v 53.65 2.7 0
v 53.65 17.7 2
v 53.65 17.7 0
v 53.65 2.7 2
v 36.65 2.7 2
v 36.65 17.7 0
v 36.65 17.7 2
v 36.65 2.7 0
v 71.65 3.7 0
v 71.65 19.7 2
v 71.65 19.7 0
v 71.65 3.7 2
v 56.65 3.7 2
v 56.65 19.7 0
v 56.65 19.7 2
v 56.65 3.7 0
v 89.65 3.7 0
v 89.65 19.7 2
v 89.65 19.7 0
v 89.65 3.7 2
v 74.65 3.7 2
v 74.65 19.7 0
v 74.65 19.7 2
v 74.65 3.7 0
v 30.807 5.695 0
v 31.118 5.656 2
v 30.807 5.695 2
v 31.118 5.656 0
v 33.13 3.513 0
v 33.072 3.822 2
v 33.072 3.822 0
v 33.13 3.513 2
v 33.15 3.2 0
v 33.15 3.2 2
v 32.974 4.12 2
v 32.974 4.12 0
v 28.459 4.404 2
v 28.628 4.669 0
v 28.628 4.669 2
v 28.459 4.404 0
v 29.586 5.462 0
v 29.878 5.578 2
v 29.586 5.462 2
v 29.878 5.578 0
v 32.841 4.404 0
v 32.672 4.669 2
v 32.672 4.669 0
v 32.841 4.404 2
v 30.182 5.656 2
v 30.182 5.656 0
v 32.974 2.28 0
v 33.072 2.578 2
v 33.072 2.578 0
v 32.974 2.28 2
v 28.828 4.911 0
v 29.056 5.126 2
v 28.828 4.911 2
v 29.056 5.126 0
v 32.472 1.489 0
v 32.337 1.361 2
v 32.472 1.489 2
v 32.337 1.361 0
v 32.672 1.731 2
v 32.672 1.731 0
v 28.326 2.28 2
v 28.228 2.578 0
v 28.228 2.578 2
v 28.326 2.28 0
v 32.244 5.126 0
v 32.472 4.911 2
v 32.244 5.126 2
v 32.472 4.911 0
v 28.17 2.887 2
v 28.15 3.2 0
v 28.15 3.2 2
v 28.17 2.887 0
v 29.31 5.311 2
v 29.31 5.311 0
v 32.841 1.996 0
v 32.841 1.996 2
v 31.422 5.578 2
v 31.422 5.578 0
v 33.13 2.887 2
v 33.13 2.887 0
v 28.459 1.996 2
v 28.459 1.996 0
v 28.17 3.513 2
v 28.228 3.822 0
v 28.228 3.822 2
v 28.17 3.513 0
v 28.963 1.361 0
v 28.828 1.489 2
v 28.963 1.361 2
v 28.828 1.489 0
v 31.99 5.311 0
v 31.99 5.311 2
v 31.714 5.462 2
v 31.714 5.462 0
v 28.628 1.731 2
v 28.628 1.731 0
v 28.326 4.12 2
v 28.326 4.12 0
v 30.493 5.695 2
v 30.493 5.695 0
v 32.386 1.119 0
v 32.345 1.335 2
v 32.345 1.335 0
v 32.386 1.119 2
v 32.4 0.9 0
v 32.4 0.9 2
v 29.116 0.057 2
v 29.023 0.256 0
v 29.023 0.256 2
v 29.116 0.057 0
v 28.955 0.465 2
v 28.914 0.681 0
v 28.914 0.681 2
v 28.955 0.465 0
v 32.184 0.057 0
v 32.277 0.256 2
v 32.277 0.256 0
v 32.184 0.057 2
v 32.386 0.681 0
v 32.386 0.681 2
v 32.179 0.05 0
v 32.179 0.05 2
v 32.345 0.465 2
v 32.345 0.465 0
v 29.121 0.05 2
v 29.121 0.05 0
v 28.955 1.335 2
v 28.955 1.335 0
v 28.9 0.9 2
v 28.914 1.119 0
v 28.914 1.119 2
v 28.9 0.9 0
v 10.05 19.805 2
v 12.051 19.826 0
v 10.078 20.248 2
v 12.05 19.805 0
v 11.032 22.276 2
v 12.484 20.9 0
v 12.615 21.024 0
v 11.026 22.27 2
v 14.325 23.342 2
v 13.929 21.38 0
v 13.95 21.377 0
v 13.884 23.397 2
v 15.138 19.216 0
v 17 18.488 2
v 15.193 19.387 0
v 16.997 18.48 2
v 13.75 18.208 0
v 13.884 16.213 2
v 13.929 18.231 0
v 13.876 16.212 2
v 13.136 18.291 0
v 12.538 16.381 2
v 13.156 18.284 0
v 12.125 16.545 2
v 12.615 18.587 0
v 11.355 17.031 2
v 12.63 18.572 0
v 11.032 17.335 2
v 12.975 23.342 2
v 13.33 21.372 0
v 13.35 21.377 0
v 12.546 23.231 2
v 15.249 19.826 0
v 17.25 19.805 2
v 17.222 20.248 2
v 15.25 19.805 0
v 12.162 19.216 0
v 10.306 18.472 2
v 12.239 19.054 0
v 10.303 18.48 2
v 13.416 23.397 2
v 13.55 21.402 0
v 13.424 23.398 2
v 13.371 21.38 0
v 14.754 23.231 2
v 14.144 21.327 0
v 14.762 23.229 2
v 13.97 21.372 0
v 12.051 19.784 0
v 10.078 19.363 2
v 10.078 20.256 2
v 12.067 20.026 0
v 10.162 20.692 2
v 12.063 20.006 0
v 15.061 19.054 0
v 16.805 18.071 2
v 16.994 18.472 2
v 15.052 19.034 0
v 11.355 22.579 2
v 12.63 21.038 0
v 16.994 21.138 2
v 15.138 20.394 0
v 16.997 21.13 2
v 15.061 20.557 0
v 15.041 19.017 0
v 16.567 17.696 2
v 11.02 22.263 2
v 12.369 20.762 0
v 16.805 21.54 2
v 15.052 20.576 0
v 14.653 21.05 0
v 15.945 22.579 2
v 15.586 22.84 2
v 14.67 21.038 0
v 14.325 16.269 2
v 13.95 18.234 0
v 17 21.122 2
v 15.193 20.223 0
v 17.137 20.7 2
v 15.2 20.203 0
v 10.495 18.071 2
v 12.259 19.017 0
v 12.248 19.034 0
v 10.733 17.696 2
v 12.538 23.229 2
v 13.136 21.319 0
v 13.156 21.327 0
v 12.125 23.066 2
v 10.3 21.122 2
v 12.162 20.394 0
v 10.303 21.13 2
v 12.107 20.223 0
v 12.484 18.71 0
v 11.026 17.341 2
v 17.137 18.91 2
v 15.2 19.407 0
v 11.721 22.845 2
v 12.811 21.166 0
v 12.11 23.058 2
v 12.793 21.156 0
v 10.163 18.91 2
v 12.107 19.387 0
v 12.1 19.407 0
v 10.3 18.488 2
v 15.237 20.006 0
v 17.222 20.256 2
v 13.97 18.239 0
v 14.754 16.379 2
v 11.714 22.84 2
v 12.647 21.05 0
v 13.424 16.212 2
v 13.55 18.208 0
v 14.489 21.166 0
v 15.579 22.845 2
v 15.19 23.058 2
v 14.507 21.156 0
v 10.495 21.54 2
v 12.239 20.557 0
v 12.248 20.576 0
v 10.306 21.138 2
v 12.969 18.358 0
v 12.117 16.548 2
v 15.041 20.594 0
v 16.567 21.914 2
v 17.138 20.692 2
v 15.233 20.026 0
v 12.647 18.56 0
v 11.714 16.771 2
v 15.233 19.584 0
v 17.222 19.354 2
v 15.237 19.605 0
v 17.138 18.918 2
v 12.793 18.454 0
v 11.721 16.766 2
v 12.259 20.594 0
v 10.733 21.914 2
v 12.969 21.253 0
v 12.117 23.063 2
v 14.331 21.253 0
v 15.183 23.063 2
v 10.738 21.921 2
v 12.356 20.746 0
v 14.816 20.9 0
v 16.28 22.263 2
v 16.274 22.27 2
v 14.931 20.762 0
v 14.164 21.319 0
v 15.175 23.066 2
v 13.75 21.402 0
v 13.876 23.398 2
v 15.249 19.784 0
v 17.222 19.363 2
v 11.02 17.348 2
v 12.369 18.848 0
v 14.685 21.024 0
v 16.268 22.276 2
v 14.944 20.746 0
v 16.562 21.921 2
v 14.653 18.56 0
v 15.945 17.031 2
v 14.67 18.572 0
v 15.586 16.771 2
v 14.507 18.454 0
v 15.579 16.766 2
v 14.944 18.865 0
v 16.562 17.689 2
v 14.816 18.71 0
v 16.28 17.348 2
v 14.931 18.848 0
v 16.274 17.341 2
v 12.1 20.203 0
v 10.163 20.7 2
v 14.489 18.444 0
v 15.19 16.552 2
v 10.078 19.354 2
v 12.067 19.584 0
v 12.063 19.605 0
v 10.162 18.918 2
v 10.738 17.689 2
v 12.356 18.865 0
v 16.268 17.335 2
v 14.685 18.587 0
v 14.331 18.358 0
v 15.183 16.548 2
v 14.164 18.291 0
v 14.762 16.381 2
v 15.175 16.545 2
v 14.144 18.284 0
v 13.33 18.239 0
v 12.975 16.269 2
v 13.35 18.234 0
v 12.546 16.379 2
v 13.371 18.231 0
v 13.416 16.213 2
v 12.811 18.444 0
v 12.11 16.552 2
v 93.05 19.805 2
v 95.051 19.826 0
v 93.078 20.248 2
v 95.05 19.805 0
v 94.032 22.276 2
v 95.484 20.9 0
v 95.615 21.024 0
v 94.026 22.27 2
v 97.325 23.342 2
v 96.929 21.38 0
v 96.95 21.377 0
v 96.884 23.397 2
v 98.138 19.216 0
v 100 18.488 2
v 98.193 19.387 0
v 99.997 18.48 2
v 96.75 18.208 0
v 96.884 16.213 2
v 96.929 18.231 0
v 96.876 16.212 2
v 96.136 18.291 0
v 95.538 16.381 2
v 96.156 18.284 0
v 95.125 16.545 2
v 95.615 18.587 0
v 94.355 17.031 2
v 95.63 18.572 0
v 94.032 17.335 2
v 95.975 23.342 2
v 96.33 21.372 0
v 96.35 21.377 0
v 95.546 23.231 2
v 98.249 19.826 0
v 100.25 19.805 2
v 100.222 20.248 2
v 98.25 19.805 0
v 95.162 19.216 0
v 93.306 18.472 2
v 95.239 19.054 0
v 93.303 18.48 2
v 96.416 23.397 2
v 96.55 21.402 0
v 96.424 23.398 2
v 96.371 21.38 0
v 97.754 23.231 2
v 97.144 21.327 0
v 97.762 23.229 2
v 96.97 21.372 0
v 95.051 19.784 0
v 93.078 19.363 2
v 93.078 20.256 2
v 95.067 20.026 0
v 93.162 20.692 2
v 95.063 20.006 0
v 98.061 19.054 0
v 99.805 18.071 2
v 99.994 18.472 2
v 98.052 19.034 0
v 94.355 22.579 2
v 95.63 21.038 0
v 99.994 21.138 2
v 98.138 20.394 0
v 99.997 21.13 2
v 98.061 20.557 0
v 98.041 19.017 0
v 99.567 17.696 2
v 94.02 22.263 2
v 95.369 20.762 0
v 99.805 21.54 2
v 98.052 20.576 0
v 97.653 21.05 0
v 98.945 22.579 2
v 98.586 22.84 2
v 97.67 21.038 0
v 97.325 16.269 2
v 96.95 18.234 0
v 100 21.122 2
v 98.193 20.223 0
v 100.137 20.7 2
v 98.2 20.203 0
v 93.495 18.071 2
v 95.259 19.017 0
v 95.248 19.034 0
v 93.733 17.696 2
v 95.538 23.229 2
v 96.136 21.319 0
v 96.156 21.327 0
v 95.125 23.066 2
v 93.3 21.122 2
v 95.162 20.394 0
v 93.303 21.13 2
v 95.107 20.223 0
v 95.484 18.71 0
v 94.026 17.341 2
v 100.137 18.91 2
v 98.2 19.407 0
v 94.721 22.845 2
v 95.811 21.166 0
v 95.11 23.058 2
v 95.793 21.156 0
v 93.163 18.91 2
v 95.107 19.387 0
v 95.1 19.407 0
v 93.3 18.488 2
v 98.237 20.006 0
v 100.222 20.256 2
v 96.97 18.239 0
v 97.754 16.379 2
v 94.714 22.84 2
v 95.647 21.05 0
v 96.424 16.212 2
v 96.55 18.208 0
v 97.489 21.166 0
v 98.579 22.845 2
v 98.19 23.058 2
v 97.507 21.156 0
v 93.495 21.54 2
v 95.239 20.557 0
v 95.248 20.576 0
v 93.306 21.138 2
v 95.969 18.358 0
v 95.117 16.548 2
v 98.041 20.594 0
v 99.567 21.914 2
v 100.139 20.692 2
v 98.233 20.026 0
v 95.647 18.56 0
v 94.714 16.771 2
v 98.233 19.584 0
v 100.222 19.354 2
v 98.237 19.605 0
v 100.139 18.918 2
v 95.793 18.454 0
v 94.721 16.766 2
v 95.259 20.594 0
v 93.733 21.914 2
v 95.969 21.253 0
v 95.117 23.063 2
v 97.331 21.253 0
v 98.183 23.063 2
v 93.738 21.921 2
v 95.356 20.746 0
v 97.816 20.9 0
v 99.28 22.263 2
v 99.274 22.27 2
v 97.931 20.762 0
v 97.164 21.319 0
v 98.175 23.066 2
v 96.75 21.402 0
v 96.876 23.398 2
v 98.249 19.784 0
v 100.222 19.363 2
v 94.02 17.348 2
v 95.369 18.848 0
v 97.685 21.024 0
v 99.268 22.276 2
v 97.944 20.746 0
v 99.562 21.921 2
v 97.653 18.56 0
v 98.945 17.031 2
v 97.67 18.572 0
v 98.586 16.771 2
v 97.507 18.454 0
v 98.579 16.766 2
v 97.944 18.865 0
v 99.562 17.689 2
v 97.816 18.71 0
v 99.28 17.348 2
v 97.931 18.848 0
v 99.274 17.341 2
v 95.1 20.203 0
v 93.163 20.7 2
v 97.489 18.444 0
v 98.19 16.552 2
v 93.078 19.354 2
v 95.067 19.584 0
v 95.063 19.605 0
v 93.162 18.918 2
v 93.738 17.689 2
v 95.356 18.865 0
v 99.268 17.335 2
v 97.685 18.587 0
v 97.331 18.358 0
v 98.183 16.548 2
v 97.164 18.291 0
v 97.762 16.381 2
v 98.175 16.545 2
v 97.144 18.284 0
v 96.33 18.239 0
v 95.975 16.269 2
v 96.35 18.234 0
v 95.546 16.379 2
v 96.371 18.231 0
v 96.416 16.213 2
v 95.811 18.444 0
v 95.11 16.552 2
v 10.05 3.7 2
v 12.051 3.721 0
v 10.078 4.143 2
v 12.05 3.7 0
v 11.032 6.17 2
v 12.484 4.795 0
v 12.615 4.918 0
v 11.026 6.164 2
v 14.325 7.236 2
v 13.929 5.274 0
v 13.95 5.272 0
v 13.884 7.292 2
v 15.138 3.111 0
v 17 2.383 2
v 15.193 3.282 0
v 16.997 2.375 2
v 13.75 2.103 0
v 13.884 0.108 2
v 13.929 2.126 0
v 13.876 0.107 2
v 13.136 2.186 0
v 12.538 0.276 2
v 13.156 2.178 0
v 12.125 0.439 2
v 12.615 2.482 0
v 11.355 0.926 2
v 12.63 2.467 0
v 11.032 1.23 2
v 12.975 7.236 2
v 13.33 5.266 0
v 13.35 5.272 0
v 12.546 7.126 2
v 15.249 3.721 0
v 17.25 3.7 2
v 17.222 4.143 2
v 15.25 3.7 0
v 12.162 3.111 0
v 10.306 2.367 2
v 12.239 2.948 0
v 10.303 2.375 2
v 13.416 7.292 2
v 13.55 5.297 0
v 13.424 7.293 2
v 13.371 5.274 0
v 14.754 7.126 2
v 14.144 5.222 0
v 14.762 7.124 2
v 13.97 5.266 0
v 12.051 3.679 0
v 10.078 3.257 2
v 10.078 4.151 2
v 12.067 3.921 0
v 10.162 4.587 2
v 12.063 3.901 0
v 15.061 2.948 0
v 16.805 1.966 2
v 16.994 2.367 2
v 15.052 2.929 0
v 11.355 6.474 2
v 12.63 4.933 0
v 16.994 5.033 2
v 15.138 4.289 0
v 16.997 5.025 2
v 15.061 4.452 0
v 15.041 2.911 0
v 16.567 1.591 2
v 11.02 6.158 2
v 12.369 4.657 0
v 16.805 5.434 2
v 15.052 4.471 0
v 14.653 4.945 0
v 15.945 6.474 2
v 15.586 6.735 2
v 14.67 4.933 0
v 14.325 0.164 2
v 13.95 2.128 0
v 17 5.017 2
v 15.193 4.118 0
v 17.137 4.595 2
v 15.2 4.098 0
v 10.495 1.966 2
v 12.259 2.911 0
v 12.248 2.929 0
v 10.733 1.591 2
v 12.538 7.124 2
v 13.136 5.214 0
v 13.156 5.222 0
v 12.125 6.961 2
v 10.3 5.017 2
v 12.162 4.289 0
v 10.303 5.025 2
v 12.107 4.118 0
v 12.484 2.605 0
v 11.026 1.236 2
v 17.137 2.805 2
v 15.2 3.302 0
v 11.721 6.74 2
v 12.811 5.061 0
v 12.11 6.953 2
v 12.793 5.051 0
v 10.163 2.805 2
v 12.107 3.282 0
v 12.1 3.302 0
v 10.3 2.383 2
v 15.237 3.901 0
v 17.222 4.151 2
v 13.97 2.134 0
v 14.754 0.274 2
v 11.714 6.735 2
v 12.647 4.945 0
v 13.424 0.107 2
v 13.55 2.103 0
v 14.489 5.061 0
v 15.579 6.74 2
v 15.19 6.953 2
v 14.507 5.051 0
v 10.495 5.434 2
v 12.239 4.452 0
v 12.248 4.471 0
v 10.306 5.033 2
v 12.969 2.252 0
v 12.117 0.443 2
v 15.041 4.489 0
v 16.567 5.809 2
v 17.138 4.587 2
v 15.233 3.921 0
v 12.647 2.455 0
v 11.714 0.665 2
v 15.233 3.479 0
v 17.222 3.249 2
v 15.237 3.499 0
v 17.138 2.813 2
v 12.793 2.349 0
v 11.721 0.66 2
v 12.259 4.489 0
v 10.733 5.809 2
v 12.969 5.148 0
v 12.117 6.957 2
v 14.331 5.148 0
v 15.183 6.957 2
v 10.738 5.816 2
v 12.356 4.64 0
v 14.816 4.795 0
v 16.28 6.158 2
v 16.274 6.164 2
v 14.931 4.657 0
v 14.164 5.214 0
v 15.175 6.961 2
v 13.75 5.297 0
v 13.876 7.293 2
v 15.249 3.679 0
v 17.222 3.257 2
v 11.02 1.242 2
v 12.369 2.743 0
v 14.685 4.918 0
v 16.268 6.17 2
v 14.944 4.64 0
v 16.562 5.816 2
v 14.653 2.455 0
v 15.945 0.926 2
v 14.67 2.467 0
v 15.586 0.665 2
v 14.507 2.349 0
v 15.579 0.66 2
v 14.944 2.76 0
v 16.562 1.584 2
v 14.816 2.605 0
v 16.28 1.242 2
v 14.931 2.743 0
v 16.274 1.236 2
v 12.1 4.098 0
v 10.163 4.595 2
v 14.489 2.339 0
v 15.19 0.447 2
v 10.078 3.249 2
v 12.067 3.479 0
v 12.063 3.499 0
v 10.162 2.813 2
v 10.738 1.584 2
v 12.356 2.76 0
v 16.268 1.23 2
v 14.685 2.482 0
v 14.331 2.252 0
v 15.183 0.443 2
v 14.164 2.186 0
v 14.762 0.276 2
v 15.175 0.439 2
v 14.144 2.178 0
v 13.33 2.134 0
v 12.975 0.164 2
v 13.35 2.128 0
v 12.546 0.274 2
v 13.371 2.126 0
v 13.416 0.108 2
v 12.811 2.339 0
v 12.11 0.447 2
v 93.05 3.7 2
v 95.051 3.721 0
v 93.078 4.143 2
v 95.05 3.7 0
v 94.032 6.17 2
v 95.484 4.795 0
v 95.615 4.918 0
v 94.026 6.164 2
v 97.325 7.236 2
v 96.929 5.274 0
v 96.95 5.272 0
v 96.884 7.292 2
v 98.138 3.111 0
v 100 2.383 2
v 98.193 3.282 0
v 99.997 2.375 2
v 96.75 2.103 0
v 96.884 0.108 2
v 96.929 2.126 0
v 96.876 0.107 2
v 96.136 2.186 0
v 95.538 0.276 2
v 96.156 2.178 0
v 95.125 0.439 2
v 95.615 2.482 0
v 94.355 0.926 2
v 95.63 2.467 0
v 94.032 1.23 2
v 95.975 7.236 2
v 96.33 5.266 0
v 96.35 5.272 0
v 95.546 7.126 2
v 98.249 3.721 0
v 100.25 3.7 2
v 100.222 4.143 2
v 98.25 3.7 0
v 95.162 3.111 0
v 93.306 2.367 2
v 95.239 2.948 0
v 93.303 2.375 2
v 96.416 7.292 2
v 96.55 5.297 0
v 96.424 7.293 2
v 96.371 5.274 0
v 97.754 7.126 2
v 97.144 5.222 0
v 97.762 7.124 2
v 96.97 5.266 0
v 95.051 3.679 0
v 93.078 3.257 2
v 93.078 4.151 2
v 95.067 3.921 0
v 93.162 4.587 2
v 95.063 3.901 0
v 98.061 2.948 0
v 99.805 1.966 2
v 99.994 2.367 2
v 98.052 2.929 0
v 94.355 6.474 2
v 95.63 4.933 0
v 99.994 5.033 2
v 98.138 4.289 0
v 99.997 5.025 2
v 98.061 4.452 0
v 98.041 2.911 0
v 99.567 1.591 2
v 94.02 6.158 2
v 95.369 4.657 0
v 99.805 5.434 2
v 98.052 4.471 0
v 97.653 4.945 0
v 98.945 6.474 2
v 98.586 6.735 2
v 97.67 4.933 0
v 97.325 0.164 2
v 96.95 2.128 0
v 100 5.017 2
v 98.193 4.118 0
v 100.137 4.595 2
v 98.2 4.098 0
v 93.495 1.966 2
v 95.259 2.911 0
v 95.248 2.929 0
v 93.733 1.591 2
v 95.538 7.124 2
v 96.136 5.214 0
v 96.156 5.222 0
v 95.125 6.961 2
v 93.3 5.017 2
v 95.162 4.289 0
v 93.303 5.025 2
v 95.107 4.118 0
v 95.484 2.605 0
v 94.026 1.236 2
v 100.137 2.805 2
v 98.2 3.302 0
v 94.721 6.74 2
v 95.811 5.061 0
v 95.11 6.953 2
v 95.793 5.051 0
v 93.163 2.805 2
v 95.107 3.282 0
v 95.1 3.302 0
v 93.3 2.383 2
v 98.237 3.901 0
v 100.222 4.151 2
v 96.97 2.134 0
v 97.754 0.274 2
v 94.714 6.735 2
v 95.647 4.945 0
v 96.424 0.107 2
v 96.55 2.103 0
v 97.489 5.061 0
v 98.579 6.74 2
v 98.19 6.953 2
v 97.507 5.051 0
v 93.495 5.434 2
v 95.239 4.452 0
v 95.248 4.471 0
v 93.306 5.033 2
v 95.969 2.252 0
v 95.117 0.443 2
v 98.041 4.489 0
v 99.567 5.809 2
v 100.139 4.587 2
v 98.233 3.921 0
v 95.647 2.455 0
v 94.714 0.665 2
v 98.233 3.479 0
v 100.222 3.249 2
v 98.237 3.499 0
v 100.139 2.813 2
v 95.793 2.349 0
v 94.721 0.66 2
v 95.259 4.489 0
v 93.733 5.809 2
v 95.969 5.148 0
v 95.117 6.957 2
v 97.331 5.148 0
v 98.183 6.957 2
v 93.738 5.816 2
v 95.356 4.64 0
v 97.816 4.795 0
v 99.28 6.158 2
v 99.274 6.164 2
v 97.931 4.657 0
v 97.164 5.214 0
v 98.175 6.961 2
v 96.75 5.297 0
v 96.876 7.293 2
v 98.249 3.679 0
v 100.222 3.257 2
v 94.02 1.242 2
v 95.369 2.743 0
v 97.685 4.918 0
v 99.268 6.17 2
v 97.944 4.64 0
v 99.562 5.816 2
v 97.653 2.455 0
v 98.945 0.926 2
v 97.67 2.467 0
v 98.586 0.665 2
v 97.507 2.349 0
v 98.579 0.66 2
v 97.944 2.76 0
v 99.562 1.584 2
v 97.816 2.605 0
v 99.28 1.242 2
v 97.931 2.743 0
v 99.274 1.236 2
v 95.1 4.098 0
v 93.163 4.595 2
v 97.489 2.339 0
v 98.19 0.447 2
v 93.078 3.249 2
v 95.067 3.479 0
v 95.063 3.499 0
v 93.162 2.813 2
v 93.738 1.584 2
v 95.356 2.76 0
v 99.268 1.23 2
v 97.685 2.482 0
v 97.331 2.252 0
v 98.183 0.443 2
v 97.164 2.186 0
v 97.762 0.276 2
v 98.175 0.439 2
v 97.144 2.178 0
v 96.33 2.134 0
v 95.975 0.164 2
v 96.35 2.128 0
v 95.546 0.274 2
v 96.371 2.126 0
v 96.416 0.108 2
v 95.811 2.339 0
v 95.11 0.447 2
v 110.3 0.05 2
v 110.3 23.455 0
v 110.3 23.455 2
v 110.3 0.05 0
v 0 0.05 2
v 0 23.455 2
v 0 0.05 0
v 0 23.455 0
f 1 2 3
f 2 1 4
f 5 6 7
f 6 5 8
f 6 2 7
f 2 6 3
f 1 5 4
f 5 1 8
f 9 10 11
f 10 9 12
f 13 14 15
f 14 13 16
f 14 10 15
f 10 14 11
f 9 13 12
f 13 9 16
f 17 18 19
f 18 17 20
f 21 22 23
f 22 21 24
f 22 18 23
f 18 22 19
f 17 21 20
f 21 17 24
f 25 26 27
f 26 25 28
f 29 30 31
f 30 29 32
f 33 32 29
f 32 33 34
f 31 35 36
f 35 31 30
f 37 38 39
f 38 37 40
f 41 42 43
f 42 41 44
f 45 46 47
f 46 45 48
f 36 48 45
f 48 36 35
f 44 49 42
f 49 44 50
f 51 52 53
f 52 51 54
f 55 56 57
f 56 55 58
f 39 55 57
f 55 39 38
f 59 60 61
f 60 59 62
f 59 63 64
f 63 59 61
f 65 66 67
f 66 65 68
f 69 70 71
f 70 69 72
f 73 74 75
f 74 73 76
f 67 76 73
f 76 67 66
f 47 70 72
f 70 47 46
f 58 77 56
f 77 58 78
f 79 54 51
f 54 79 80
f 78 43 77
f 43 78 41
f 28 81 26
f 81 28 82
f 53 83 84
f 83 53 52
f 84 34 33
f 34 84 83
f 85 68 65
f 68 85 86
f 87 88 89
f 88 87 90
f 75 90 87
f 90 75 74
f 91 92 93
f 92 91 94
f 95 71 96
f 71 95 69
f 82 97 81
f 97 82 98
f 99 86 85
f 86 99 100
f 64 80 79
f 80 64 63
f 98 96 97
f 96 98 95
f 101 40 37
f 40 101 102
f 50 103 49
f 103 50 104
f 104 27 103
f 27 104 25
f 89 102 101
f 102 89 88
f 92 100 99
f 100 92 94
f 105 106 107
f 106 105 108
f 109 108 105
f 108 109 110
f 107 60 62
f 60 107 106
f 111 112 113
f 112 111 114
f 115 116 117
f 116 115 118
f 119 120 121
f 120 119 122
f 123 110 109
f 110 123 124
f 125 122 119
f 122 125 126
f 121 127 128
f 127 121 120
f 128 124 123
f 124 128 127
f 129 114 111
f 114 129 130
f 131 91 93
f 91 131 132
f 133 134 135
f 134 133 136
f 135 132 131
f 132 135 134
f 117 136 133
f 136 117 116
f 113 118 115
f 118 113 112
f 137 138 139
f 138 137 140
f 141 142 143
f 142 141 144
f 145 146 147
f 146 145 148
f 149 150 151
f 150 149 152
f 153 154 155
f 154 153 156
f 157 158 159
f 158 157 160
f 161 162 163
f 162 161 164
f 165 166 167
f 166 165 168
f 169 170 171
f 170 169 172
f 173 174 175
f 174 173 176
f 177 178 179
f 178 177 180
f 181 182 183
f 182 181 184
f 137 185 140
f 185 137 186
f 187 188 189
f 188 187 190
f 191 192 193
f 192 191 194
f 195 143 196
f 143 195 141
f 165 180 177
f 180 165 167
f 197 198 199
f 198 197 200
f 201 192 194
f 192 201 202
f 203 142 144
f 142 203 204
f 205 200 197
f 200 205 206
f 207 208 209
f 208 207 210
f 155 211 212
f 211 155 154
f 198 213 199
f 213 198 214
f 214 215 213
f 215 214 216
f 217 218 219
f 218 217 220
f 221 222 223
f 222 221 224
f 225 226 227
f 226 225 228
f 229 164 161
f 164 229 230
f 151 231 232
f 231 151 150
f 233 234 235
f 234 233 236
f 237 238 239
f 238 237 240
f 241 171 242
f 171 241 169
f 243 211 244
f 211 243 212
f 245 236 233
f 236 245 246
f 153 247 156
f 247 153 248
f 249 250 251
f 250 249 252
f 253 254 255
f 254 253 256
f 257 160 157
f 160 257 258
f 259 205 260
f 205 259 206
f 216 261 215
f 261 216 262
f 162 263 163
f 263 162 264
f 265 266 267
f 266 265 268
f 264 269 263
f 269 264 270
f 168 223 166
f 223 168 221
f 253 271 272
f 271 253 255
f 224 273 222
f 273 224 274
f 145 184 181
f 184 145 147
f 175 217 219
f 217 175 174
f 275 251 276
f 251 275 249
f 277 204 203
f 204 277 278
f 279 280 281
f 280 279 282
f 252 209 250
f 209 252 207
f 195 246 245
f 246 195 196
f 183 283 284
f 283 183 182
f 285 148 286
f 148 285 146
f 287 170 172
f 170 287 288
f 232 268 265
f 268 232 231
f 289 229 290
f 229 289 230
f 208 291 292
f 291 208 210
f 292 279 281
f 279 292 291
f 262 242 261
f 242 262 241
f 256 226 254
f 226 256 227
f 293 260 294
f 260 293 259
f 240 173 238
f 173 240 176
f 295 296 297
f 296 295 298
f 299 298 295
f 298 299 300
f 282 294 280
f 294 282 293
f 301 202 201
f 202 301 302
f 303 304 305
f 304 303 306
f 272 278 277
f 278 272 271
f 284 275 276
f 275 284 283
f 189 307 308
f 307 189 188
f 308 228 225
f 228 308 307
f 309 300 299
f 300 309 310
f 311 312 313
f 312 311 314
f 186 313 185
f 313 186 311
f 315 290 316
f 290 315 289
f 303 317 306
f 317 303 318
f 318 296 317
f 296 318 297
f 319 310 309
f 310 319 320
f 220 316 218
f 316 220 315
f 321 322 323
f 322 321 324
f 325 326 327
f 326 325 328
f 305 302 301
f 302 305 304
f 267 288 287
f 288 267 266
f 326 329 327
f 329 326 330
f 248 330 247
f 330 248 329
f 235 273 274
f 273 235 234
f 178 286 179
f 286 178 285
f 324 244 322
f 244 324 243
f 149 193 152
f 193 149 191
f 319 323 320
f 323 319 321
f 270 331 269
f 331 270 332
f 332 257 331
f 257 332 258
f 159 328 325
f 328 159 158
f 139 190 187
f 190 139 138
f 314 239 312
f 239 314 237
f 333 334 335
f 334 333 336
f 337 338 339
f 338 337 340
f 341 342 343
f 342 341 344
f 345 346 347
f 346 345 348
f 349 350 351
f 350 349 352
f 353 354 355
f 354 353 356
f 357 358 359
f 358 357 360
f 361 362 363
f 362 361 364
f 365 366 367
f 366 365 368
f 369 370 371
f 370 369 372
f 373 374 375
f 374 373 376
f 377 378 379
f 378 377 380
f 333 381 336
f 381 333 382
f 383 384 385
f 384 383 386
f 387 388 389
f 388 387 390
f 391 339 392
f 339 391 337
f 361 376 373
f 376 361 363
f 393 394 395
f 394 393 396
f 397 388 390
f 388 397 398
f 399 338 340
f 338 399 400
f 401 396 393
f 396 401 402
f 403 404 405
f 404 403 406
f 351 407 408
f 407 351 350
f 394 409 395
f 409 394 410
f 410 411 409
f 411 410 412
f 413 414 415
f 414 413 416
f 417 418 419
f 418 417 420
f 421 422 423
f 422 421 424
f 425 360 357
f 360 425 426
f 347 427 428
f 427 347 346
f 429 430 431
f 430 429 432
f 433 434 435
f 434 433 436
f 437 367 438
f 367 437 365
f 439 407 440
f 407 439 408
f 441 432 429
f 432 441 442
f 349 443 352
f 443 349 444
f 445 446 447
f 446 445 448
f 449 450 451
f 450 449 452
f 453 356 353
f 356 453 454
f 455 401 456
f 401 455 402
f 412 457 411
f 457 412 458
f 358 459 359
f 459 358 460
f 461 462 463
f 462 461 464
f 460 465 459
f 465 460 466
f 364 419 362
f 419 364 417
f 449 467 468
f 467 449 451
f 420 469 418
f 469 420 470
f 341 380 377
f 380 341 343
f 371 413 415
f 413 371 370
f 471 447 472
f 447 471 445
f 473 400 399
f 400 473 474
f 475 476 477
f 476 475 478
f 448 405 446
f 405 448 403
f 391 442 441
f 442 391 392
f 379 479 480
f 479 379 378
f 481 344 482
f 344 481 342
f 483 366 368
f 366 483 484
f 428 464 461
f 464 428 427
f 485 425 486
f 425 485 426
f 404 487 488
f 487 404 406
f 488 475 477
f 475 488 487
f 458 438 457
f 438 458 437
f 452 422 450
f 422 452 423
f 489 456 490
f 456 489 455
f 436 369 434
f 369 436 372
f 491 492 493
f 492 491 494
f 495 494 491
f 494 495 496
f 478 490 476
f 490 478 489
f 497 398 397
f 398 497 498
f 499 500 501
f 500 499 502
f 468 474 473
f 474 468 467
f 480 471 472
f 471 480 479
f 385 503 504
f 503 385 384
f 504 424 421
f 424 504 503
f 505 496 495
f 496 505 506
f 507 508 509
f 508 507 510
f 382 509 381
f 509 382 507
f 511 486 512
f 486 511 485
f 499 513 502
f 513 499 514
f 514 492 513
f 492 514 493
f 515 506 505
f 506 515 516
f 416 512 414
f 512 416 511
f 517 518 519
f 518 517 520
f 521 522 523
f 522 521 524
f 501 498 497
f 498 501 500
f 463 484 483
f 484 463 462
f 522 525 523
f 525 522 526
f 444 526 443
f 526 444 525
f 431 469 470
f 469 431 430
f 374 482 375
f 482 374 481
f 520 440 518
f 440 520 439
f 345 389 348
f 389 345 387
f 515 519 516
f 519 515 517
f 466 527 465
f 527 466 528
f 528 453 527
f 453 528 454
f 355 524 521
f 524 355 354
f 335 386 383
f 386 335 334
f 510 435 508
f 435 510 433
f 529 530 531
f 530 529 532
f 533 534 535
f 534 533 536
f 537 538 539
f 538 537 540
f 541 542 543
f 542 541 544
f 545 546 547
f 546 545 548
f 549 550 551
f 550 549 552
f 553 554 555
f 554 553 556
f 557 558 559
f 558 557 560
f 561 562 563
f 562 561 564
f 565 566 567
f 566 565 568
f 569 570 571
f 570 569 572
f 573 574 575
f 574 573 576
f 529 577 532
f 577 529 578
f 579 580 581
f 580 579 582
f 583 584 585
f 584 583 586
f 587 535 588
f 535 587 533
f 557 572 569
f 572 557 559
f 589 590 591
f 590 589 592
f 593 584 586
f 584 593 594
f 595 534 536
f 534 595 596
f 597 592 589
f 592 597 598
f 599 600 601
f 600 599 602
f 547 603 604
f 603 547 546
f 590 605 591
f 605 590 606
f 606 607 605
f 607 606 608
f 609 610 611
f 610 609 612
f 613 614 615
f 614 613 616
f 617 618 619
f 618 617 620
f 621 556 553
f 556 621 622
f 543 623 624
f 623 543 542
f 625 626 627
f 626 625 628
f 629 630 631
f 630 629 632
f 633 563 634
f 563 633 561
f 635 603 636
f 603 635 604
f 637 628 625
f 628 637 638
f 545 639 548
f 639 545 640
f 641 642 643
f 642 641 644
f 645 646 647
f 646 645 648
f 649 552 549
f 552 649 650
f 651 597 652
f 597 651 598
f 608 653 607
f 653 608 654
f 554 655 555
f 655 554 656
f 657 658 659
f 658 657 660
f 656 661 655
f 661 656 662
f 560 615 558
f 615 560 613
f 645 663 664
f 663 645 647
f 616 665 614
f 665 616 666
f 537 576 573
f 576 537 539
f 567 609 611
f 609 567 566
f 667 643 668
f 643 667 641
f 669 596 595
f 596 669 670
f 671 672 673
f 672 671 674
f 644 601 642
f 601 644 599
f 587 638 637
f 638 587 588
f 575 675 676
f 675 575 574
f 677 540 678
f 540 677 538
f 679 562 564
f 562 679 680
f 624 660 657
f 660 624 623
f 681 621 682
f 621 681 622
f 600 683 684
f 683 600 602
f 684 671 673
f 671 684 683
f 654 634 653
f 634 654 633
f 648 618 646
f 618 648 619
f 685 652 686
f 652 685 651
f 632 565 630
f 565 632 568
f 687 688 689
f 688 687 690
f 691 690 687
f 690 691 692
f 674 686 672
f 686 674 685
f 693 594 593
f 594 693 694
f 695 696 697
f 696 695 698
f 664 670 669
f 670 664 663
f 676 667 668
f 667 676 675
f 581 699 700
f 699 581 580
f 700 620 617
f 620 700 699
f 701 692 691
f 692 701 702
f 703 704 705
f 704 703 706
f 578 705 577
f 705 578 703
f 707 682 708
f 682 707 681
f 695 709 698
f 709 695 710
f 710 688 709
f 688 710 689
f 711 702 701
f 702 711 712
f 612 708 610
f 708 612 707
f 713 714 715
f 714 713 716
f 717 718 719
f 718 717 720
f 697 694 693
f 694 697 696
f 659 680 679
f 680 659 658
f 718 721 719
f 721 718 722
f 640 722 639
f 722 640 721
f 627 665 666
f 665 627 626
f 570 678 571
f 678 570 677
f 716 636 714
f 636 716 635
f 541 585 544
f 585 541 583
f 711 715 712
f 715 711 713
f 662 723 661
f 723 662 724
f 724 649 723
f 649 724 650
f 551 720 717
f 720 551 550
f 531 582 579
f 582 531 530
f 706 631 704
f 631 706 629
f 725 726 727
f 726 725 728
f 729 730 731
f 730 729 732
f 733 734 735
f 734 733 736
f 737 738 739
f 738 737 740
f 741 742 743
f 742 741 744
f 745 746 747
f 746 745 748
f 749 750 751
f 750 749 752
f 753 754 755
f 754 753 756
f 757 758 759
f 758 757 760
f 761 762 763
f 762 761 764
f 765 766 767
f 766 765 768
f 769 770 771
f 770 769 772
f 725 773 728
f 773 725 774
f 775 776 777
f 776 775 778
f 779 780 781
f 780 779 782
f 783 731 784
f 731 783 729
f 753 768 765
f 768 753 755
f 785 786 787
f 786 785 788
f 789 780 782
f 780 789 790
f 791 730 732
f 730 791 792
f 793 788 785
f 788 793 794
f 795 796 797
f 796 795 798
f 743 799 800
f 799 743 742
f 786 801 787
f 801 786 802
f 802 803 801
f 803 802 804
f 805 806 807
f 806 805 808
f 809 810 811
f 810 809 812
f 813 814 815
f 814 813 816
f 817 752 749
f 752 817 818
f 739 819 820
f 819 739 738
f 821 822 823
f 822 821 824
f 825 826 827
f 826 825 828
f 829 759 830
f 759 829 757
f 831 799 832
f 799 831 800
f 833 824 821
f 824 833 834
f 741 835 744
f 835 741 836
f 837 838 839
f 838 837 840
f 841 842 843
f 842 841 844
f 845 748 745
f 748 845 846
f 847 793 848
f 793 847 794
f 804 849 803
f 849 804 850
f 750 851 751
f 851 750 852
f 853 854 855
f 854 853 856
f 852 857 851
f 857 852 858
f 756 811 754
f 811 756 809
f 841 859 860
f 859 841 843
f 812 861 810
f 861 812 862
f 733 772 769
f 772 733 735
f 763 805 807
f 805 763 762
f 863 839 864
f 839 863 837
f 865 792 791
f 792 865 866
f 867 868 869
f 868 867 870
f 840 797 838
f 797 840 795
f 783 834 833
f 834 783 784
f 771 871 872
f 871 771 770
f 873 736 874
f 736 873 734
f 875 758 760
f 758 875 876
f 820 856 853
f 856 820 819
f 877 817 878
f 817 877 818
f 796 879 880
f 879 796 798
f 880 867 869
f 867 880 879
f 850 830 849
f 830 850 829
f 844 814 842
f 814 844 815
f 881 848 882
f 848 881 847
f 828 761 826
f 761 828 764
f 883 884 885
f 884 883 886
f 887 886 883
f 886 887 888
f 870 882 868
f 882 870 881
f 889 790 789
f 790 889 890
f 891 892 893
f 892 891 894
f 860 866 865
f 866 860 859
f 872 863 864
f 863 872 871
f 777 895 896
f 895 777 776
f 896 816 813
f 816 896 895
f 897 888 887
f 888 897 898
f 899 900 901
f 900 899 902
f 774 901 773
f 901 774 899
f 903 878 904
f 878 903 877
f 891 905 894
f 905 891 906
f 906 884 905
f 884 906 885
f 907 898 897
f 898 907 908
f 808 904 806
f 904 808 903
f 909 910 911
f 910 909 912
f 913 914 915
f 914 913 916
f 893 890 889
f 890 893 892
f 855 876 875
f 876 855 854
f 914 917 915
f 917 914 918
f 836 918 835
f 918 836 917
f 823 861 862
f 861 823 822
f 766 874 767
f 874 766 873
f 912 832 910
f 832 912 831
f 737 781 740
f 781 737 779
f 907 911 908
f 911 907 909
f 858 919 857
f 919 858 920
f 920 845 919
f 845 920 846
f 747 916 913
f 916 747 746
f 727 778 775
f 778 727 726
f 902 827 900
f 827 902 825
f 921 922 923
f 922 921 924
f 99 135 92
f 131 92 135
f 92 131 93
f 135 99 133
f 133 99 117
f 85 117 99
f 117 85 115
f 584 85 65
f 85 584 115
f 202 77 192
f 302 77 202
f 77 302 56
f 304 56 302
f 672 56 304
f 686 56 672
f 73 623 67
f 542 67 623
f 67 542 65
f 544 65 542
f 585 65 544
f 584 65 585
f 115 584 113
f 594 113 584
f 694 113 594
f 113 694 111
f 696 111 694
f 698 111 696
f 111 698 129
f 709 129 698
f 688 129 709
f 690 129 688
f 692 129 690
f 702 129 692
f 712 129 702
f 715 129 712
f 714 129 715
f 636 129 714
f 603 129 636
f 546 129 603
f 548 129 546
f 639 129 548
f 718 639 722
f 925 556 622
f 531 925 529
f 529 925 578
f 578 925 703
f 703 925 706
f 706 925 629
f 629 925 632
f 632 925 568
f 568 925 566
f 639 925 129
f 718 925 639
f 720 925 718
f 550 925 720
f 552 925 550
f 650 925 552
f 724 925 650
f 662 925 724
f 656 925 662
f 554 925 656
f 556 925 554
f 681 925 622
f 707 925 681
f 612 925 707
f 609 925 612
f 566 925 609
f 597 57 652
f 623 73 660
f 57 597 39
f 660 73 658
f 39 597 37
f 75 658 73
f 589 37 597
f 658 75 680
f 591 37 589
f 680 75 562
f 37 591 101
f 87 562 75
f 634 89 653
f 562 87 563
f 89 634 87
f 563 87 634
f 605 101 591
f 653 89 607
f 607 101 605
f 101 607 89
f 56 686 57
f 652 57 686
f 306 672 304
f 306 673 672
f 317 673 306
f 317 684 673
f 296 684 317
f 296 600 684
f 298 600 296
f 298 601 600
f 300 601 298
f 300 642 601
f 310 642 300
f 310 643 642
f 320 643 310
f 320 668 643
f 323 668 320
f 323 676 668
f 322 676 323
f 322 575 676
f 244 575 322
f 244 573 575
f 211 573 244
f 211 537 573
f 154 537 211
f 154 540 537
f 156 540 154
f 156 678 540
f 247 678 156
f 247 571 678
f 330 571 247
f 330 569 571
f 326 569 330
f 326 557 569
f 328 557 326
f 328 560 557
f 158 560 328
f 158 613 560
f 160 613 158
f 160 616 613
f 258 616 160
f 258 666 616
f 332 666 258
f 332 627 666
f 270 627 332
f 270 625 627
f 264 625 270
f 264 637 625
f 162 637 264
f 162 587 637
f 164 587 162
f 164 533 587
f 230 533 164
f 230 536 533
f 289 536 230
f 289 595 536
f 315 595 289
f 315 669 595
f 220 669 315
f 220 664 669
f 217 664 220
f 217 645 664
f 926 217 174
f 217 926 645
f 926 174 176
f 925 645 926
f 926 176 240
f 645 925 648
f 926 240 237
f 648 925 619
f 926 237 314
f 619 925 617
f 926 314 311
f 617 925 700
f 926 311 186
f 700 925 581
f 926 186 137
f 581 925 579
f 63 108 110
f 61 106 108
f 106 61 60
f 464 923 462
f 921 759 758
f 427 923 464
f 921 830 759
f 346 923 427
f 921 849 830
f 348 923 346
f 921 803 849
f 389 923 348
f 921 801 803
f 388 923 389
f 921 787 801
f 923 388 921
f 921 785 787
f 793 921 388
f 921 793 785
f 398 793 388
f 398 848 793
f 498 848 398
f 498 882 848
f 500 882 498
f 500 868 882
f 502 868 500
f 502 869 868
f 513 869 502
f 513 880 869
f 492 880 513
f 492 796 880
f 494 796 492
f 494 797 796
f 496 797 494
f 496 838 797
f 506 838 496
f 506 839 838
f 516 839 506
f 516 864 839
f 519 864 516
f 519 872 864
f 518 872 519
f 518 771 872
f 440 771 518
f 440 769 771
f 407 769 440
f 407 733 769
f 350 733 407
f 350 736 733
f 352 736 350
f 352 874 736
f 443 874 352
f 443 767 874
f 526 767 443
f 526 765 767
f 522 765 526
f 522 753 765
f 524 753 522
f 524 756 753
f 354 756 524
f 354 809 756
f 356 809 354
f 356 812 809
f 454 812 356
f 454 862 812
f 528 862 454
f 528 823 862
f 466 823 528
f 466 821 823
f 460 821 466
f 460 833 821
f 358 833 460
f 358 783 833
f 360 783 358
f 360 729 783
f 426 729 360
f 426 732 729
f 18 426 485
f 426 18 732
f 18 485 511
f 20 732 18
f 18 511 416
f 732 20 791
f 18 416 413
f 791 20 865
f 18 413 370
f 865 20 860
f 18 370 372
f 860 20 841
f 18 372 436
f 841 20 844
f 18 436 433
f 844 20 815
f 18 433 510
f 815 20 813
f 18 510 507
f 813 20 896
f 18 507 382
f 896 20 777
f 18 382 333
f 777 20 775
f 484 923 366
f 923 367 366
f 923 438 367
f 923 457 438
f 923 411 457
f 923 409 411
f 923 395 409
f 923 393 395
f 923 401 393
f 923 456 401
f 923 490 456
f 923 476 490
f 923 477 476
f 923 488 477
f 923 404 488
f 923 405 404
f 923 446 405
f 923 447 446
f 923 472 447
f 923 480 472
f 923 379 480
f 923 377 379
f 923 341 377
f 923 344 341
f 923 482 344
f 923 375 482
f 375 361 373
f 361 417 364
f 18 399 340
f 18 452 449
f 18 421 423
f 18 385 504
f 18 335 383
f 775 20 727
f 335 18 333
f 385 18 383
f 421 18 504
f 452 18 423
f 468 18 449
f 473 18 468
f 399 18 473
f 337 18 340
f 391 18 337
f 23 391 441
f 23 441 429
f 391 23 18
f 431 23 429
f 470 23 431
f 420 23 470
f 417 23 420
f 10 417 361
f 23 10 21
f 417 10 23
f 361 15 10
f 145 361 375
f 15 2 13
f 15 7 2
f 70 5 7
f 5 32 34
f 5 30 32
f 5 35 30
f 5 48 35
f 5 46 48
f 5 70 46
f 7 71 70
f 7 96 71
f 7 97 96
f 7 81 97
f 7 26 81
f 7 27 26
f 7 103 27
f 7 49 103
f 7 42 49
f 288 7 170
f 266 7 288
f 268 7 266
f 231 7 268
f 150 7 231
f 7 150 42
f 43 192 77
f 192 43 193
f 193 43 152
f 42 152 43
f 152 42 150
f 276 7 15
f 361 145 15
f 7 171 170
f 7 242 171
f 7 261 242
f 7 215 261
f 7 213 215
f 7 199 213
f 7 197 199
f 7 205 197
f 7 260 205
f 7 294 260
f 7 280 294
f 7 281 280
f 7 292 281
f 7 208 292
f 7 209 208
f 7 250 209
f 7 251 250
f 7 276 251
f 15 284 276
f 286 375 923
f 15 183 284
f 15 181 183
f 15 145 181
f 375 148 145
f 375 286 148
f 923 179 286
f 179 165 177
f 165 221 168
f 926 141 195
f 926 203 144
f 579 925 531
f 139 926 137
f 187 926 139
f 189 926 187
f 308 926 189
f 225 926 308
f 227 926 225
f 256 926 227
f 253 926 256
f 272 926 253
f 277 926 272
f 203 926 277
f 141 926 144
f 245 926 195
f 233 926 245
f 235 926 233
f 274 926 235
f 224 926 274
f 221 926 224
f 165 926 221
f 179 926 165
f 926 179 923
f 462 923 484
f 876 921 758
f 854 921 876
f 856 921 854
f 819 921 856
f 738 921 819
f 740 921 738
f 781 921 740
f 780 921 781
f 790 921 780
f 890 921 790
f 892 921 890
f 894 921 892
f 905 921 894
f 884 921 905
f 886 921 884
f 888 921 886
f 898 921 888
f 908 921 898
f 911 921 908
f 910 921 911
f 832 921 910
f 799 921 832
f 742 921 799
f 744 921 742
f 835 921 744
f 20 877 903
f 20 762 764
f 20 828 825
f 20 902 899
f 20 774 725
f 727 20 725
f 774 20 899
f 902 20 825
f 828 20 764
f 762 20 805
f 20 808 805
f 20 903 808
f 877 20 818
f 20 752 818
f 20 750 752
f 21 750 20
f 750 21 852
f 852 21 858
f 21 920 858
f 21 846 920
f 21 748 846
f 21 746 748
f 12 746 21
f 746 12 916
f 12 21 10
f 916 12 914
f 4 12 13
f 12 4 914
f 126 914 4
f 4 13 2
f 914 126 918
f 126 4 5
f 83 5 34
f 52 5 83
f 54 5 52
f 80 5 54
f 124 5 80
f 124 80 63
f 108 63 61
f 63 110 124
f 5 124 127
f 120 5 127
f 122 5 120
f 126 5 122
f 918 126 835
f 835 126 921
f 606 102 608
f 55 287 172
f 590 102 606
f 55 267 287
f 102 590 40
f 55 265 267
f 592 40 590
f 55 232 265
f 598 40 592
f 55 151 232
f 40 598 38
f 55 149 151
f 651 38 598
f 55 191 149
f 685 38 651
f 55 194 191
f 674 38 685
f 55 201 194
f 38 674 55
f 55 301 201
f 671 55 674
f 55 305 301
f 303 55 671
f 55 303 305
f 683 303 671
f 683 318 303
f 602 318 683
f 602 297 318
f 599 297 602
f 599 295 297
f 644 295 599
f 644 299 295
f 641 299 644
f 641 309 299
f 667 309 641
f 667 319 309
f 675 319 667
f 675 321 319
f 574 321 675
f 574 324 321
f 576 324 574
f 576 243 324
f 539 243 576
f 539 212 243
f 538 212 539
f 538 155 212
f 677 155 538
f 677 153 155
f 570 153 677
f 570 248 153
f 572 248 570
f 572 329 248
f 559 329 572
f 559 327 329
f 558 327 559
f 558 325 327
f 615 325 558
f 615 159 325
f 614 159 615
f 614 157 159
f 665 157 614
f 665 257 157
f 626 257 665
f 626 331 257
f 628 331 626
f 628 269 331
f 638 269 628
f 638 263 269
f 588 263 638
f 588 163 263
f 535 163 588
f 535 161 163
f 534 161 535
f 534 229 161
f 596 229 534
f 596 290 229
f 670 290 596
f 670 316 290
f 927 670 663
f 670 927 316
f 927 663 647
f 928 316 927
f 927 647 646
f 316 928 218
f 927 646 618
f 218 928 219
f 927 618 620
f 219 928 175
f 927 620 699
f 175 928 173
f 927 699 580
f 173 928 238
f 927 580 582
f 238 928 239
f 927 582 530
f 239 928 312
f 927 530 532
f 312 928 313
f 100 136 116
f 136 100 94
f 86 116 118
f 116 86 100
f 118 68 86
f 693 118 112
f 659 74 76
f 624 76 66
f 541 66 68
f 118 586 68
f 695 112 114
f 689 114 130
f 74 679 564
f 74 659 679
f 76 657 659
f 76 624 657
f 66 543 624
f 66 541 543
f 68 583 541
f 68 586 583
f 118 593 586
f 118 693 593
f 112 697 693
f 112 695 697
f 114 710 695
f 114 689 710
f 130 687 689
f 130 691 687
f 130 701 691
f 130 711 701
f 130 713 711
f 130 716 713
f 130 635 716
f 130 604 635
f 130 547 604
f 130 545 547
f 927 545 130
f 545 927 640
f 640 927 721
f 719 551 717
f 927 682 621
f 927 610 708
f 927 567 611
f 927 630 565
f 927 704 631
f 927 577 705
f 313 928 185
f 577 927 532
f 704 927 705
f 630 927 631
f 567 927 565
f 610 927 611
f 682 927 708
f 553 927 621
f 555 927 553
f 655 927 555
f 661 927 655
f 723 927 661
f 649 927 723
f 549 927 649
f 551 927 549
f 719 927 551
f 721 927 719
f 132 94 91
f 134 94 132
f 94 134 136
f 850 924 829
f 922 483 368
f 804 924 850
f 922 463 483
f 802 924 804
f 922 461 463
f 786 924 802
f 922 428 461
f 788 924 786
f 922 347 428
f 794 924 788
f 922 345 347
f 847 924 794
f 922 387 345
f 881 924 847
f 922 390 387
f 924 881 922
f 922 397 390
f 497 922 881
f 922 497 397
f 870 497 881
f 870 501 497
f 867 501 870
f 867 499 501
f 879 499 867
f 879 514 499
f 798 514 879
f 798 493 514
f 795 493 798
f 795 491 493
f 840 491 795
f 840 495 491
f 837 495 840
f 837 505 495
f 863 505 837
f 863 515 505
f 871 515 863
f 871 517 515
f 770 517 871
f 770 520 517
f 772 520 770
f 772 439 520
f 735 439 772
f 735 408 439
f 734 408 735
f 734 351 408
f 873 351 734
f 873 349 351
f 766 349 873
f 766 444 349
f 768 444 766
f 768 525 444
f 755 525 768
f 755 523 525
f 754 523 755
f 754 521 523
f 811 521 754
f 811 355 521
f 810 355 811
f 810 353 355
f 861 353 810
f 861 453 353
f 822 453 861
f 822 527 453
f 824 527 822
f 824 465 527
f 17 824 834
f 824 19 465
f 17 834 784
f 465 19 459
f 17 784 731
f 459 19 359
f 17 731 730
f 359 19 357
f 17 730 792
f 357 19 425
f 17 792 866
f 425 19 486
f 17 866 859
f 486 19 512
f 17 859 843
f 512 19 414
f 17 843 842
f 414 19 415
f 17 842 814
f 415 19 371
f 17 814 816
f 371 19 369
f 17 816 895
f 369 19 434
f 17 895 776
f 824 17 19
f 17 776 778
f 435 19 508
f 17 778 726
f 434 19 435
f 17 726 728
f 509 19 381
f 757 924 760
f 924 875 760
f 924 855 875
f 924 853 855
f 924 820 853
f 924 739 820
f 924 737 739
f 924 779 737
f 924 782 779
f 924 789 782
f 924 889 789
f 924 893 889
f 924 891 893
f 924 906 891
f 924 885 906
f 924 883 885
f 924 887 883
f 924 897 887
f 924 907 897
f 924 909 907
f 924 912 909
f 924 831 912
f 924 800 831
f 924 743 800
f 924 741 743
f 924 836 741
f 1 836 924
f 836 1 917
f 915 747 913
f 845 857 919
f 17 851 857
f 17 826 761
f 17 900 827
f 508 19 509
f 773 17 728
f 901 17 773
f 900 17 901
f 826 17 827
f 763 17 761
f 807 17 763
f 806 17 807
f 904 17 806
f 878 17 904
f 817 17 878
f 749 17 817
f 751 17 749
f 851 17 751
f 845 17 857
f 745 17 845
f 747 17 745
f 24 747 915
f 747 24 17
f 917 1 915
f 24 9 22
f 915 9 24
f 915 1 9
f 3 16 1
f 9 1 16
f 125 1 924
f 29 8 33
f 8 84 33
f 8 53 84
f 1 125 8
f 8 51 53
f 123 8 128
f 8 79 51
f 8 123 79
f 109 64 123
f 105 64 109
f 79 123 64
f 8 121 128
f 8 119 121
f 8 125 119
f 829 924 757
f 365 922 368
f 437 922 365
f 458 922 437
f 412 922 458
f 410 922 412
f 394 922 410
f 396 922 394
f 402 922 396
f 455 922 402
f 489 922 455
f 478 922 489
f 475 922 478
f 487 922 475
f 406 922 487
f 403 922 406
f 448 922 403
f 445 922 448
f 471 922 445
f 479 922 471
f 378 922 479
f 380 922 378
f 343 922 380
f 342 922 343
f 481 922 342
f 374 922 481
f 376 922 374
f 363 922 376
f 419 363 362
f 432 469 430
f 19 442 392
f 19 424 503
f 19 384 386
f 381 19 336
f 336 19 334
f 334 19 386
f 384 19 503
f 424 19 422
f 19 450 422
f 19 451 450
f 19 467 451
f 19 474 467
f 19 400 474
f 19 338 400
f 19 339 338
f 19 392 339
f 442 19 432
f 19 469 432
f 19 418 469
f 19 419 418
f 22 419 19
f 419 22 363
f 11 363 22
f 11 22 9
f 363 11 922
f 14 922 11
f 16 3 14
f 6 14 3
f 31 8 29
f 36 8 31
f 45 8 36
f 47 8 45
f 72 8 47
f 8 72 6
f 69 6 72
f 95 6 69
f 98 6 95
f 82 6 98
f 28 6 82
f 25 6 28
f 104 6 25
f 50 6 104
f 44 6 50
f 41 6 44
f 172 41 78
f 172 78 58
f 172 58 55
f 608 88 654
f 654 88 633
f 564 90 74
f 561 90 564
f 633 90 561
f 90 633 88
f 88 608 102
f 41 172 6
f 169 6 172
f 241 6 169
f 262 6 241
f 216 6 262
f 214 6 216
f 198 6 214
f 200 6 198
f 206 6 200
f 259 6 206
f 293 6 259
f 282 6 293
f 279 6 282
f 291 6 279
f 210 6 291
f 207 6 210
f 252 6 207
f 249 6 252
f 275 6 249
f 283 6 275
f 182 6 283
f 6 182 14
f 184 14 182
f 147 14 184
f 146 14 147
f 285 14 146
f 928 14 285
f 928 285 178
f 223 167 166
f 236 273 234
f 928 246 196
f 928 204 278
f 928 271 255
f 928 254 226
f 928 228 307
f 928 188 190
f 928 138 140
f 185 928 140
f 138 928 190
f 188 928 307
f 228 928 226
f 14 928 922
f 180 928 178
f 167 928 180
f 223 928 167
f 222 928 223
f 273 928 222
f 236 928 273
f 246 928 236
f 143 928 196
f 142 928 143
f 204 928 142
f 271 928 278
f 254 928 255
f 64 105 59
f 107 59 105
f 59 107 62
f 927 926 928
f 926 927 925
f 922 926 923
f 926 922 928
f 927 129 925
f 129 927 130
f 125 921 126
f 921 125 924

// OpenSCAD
include<../sixinch_library.scad>


  ///////////////////////////////
 // Raspberry Pi 3 Model B    //
///////////////////////////////

print_rear           = true;

if(print_rear){  // Back plate //    
    square_hole  = [[37 ,3, 17, 15] , [57 ,4, 15, 16] , [75,4,15,16] ];
    round_hole   = [[31,3.5,5],[31,1.2,3.5]];
    screw_top    = [36];//mm
    screw_bottom = [36];//mm
    screw_side   = [];
    depth        = 98;
    units        = 2;
    translate([-22.35,-2.3,-99]){
        back_plate(units,depth,screw_top,screw_bottom,screw_side,square_hole,round_hole);
    }
}  
